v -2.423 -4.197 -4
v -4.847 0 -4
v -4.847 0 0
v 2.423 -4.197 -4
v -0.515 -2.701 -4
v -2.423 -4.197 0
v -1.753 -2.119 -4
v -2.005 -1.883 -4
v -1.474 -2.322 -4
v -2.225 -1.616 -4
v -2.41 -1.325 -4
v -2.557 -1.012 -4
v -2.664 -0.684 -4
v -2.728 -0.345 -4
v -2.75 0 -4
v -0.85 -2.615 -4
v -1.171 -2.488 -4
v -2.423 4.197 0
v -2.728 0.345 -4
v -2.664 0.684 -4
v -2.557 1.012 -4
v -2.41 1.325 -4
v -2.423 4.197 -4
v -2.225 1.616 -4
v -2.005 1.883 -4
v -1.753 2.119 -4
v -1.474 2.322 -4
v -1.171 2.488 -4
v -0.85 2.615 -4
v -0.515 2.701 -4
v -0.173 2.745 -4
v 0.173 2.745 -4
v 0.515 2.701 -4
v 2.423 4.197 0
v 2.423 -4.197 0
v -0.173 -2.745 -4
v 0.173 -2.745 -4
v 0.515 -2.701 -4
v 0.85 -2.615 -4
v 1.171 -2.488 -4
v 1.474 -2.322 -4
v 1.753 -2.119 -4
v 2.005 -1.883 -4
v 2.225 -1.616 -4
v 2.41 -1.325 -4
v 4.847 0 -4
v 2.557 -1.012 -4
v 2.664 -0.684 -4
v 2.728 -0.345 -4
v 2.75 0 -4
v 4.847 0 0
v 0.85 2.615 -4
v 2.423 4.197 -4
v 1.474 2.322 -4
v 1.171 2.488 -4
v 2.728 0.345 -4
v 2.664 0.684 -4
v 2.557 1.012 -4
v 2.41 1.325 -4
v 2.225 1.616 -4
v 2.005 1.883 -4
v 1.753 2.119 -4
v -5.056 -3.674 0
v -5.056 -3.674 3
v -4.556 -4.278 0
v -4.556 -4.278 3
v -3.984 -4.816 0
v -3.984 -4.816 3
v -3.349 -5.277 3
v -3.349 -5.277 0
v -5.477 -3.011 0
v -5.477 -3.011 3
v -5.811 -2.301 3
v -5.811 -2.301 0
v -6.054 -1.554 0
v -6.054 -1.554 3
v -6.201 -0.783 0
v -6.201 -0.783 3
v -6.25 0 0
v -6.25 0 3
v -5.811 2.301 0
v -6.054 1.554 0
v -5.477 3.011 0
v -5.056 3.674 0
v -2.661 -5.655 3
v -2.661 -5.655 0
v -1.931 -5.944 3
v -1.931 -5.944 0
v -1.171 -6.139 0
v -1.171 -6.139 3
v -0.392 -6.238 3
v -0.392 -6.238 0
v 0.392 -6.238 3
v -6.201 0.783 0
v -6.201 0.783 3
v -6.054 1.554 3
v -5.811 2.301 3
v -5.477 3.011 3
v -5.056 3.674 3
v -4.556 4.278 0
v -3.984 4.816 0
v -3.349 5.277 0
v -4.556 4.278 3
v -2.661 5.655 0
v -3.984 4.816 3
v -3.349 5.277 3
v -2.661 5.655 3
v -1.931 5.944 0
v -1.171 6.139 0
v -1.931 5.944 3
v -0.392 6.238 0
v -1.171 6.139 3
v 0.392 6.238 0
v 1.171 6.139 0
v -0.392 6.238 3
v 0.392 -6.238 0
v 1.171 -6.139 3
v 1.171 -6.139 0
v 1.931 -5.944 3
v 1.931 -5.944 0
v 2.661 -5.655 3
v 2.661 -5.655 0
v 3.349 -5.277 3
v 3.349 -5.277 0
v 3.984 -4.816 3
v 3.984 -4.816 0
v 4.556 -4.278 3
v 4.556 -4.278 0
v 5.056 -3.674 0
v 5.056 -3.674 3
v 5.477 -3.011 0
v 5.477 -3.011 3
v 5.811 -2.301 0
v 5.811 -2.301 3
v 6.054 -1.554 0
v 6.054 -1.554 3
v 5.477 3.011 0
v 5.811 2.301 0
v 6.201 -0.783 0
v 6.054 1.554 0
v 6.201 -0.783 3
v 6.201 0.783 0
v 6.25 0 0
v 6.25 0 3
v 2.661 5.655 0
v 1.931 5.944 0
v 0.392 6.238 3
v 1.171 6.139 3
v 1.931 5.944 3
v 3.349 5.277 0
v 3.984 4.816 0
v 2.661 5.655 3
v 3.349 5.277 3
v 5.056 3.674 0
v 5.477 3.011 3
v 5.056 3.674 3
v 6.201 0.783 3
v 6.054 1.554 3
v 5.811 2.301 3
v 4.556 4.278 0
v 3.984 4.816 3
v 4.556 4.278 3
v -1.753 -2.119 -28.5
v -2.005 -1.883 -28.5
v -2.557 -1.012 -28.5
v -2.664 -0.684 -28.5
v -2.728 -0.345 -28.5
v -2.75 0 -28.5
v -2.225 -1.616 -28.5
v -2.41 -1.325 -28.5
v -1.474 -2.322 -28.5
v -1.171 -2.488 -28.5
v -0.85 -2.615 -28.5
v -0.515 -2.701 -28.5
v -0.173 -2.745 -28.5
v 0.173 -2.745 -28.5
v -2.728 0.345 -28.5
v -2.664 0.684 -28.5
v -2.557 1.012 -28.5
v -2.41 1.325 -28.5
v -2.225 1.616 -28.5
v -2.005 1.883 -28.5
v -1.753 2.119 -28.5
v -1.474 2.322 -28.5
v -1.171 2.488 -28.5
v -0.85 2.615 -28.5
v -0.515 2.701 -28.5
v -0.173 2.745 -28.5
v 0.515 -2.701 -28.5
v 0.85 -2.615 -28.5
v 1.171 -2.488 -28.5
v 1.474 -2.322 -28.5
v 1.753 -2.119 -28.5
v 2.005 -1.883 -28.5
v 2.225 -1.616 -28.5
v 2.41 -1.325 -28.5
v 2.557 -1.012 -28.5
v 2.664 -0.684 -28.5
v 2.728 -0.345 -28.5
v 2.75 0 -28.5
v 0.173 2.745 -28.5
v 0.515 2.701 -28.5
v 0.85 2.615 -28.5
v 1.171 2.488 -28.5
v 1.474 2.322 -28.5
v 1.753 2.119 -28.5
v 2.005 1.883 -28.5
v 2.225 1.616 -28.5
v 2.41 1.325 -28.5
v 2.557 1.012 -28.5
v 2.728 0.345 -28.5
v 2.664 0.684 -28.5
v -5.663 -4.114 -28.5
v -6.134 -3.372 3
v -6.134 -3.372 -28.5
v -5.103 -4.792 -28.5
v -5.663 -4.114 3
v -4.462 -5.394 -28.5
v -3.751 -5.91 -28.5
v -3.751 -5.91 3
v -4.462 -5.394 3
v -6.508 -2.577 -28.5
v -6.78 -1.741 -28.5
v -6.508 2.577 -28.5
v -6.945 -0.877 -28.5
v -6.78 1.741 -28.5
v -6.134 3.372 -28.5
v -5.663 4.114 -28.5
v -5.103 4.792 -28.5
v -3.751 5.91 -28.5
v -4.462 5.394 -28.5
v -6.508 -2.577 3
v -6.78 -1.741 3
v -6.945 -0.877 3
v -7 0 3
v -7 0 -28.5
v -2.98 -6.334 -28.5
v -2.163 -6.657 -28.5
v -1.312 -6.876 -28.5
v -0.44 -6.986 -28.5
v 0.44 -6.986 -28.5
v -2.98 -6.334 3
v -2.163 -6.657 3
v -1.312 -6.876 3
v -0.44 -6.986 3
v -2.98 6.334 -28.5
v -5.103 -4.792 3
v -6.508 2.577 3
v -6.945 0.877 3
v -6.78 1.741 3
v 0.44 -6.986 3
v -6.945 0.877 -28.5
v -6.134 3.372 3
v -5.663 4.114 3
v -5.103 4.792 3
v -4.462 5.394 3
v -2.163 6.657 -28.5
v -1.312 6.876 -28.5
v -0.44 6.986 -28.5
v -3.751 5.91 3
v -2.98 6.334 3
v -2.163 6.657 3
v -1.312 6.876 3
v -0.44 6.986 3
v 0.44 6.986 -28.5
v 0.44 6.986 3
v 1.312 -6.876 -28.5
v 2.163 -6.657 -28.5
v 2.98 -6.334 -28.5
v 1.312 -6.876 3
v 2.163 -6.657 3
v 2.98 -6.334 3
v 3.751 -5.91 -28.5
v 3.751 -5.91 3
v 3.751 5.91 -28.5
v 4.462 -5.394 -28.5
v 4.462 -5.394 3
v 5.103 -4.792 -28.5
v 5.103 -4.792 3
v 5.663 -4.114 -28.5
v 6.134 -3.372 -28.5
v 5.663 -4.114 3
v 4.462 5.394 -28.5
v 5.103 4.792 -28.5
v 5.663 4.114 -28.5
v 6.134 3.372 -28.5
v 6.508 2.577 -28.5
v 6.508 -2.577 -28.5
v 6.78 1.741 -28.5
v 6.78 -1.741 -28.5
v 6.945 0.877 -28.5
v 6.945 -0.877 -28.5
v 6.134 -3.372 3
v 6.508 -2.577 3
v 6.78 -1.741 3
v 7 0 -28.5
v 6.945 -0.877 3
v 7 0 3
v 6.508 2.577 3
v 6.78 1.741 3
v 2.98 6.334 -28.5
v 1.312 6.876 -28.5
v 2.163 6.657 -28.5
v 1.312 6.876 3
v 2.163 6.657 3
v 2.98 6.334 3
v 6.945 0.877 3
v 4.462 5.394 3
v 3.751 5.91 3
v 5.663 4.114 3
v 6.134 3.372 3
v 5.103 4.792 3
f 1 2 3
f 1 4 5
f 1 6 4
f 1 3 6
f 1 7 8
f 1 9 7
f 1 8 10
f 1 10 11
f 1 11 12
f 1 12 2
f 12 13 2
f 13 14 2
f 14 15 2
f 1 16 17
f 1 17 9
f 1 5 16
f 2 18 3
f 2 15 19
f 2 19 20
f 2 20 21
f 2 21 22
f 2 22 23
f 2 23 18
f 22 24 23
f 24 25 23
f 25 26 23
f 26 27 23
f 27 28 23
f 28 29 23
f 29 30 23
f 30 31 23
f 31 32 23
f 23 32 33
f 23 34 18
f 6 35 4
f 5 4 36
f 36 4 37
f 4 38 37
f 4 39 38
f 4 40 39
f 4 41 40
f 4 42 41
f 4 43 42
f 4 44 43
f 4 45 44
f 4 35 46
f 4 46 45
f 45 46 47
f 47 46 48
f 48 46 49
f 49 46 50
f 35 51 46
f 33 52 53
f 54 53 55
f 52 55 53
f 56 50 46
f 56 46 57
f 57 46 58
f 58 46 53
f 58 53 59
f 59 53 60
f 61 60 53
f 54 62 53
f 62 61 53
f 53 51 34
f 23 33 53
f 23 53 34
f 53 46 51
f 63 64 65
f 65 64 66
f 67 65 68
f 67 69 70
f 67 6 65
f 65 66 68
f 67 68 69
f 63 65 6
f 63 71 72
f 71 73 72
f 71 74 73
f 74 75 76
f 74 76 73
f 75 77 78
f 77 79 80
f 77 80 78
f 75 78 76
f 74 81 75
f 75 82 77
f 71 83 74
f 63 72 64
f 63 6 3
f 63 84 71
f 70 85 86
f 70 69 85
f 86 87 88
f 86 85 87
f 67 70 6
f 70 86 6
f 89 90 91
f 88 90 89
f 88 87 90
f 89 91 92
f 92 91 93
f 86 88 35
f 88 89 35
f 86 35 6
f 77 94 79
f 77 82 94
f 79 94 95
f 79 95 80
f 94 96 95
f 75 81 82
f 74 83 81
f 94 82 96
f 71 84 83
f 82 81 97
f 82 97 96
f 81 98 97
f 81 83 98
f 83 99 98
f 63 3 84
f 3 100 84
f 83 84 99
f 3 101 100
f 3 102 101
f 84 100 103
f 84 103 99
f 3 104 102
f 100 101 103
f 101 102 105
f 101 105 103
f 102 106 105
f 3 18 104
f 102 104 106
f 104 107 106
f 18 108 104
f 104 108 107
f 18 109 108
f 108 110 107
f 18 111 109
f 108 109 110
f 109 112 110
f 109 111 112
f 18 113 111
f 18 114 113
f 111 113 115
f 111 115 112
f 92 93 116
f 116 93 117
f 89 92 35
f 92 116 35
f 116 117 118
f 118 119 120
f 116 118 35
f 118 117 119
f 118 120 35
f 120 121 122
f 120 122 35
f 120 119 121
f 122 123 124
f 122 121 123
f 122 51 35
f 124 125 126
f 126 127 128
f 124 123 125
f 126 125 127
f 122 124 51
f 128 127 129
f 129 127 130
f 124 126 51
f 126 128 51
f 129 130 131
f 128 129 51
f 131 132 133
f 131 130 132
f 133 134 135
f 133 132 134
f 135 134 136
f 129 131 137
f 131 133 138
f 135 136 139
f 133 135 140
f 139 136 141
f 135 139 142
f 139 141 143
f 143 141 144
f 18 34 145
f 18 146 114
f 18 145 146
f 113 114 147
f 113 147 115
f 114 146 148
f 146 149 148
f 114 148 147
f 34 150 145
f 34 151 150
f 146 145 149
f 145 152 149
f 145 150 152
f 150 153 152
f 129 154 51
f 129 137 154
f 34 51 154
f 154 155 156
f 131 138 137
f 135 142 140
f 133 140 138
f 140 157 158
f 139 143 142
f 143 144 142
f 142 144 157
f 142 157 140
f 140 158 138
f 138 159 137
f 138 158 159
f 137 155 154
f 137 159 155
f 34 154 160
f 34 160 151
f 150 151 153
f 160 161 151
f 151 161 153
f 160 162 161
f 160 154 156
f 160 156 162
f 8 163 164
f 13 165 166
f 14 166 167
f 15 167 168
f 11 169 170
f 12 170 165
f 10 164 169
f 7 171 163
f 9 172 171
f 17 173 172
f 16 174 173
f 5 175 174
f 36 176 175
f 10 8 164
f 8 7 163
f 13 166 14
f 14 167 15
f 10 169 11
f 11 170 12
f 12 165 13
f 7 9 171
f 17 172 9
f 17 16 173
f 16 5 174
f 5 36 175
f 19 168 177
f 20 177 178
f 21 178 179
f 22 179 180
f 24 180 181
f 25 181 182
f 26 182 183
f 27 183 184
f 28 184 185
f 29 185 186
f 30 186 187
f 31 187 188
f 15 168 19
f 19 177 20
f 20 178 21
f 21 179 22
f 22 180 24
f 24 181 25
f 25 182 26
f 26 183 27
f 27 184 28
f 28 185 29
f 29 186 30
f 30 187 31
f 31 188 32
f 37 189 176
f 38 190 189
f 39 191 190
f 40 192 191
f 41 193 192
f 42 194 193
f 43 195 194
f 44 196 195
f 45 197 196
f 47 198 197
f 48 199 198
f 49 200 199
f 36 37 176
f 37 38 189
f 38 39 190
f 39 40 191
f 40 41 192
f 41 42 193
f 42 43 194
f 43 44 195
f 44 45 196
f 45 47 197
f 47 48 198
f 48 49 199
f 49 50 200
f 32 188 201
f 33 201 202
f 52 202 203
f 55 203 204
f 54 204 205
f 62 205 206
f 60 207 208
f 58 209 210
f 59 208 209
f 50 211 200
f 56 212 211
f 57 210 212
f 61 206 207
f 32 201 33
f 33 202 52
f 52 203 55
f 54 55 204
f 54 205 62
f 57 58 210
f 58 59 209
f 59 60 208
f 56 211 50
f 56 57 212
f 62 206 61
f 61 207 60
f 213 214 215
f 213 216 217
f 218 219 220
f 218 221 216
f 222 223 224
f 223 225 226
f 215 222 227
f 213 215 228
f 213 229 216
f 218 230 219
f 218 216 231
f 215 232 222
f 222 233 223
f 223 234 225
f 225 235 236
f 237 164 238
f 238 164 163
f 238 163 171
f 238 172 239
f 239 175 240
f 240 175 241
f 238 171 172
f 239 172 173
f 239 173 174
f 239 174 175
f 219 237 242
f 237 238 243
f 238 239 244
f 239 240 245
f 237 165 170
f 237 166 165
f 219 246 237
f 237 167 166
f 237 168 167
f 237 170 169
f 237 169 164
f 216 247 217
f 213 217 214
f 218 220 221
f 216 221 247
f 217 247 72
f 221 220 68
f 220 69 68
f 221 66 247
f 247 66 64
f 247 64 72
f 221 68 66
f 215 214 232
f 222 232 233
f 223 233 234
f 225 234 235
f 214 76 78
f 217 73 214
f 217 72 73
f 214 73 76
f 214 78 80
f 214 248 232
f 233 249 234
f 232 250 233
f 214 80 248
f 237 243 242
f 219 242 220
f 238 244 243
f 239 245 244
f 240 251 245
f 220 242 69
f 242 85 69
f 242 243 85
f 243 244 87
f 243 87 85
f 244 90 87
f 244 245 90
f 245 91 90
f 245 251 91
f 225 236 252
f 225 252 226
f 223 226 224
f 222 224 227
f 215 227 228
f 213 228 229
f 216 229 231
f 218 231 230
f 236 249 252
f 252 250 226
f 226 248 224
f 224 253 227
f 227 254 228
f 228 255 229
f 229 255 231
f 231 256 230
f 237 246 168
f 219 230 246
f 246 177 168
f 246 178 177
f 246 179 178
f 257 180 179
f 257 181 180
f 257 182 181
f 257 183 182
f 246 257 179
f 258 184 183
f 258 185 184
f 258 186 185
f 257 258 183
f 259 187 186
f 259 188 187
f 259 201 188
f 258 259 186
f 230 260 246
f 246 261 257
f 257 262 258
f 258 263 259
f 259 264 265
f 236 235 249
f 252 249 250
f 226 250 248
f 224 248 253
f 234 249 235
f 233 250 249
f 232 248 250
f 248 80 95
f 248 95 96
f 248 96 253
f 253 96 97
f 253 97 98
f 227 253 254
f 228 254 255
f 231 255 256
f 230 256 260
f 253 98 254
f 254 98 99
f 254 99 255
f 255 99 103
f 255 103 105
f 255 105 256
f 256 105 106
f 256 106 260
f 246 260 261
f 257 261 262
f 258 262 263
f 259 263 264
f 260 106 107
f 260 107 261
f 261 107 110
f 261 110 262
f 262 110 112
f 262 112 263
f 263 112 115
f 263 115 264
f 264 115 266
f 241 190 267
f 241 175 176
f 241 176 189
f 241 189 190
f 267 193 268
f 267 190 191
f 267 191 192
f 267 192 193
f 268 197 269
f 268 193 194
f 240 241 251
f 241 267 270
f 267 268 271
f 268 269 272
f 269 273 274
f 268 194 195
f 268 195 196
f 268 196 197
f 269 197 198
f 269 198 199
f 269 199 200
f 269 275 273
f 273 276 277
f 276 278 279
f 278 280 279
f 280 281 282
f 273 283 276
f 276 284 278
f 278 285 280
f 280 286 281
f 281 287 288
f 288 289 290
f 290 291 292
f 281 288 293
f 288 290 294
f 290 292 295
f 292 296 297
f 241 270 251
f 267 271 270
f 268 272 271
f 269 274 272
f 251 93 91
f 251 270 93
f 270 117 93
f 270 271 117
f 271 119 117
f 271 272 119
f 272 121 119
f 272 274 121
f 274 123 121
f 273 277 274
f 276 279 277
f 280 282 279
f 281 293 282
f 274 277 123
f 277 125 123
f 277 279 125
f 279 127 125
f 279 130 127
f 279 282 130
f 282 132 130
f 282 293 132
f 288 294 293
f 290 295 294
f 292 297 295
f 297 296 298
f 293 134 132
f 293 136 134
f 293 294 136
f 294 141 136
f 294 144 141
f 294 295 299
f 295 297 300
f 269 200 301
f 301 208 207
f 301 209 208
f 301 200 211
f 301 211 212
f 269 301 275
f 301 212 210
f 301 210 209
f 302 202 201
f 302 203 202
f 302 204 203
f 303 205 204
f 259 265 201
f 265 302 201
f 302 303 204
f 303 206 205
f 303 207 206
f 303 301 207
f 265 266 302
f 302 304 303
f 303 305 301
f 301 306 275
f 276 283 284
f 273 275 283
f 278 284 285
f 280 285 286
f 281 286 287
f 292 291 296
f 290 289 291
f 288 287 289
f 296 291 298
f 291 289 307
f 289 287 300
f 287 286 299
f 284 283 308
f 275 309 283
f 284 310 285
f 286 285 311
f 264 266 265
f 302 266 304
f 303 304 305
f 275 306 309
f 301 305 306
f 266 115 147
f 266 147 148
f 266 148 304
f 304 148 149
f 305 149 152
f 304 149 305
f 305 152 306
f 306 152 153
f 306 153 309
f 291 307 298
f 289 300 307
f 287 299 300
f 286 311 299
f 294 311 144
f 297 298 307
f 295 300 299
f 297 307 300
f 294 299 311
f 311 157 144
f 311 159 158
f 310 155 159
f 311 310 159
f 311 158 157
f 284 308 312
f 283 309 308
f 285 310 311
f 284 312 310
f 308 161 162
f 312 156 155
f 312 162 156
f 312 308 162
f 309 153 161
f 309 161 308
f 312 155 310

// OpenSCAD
$fn = 50;


difference() {
	union() {
		translate(v = [0, 0, -28.5000000000]) {
			cylinder(h = 31.5000000000, r = 7.0000000000);
		}
	}
	union() {
		translate(v = [0, 0, 0]) {
			rotate(a = [0, 0, 0]) {
				difference() {
					union() {
						translate(v = [0, 0, -4]) {
							linear_extrude(height = 4) {
								polygon(points = [[4.8468000000, 0.0000000000], [2.4234000000, 4.1974519271], [-2.4234000000, 4.1974519271], [-4.8468000000, 0.0000000000], [-2.4234000000, -4.1974519271], [2.4234000000, -4.1974519271]]);
							}
						}
					}
					union();
				}
			}
		}
		#cylinder(h = 3, r = 6.2500000000);
		#translate(v = [0, 0, -100.0000000000]) {
			cylinder(h = 200, r = 2.7500000000);
		}
	}
}
